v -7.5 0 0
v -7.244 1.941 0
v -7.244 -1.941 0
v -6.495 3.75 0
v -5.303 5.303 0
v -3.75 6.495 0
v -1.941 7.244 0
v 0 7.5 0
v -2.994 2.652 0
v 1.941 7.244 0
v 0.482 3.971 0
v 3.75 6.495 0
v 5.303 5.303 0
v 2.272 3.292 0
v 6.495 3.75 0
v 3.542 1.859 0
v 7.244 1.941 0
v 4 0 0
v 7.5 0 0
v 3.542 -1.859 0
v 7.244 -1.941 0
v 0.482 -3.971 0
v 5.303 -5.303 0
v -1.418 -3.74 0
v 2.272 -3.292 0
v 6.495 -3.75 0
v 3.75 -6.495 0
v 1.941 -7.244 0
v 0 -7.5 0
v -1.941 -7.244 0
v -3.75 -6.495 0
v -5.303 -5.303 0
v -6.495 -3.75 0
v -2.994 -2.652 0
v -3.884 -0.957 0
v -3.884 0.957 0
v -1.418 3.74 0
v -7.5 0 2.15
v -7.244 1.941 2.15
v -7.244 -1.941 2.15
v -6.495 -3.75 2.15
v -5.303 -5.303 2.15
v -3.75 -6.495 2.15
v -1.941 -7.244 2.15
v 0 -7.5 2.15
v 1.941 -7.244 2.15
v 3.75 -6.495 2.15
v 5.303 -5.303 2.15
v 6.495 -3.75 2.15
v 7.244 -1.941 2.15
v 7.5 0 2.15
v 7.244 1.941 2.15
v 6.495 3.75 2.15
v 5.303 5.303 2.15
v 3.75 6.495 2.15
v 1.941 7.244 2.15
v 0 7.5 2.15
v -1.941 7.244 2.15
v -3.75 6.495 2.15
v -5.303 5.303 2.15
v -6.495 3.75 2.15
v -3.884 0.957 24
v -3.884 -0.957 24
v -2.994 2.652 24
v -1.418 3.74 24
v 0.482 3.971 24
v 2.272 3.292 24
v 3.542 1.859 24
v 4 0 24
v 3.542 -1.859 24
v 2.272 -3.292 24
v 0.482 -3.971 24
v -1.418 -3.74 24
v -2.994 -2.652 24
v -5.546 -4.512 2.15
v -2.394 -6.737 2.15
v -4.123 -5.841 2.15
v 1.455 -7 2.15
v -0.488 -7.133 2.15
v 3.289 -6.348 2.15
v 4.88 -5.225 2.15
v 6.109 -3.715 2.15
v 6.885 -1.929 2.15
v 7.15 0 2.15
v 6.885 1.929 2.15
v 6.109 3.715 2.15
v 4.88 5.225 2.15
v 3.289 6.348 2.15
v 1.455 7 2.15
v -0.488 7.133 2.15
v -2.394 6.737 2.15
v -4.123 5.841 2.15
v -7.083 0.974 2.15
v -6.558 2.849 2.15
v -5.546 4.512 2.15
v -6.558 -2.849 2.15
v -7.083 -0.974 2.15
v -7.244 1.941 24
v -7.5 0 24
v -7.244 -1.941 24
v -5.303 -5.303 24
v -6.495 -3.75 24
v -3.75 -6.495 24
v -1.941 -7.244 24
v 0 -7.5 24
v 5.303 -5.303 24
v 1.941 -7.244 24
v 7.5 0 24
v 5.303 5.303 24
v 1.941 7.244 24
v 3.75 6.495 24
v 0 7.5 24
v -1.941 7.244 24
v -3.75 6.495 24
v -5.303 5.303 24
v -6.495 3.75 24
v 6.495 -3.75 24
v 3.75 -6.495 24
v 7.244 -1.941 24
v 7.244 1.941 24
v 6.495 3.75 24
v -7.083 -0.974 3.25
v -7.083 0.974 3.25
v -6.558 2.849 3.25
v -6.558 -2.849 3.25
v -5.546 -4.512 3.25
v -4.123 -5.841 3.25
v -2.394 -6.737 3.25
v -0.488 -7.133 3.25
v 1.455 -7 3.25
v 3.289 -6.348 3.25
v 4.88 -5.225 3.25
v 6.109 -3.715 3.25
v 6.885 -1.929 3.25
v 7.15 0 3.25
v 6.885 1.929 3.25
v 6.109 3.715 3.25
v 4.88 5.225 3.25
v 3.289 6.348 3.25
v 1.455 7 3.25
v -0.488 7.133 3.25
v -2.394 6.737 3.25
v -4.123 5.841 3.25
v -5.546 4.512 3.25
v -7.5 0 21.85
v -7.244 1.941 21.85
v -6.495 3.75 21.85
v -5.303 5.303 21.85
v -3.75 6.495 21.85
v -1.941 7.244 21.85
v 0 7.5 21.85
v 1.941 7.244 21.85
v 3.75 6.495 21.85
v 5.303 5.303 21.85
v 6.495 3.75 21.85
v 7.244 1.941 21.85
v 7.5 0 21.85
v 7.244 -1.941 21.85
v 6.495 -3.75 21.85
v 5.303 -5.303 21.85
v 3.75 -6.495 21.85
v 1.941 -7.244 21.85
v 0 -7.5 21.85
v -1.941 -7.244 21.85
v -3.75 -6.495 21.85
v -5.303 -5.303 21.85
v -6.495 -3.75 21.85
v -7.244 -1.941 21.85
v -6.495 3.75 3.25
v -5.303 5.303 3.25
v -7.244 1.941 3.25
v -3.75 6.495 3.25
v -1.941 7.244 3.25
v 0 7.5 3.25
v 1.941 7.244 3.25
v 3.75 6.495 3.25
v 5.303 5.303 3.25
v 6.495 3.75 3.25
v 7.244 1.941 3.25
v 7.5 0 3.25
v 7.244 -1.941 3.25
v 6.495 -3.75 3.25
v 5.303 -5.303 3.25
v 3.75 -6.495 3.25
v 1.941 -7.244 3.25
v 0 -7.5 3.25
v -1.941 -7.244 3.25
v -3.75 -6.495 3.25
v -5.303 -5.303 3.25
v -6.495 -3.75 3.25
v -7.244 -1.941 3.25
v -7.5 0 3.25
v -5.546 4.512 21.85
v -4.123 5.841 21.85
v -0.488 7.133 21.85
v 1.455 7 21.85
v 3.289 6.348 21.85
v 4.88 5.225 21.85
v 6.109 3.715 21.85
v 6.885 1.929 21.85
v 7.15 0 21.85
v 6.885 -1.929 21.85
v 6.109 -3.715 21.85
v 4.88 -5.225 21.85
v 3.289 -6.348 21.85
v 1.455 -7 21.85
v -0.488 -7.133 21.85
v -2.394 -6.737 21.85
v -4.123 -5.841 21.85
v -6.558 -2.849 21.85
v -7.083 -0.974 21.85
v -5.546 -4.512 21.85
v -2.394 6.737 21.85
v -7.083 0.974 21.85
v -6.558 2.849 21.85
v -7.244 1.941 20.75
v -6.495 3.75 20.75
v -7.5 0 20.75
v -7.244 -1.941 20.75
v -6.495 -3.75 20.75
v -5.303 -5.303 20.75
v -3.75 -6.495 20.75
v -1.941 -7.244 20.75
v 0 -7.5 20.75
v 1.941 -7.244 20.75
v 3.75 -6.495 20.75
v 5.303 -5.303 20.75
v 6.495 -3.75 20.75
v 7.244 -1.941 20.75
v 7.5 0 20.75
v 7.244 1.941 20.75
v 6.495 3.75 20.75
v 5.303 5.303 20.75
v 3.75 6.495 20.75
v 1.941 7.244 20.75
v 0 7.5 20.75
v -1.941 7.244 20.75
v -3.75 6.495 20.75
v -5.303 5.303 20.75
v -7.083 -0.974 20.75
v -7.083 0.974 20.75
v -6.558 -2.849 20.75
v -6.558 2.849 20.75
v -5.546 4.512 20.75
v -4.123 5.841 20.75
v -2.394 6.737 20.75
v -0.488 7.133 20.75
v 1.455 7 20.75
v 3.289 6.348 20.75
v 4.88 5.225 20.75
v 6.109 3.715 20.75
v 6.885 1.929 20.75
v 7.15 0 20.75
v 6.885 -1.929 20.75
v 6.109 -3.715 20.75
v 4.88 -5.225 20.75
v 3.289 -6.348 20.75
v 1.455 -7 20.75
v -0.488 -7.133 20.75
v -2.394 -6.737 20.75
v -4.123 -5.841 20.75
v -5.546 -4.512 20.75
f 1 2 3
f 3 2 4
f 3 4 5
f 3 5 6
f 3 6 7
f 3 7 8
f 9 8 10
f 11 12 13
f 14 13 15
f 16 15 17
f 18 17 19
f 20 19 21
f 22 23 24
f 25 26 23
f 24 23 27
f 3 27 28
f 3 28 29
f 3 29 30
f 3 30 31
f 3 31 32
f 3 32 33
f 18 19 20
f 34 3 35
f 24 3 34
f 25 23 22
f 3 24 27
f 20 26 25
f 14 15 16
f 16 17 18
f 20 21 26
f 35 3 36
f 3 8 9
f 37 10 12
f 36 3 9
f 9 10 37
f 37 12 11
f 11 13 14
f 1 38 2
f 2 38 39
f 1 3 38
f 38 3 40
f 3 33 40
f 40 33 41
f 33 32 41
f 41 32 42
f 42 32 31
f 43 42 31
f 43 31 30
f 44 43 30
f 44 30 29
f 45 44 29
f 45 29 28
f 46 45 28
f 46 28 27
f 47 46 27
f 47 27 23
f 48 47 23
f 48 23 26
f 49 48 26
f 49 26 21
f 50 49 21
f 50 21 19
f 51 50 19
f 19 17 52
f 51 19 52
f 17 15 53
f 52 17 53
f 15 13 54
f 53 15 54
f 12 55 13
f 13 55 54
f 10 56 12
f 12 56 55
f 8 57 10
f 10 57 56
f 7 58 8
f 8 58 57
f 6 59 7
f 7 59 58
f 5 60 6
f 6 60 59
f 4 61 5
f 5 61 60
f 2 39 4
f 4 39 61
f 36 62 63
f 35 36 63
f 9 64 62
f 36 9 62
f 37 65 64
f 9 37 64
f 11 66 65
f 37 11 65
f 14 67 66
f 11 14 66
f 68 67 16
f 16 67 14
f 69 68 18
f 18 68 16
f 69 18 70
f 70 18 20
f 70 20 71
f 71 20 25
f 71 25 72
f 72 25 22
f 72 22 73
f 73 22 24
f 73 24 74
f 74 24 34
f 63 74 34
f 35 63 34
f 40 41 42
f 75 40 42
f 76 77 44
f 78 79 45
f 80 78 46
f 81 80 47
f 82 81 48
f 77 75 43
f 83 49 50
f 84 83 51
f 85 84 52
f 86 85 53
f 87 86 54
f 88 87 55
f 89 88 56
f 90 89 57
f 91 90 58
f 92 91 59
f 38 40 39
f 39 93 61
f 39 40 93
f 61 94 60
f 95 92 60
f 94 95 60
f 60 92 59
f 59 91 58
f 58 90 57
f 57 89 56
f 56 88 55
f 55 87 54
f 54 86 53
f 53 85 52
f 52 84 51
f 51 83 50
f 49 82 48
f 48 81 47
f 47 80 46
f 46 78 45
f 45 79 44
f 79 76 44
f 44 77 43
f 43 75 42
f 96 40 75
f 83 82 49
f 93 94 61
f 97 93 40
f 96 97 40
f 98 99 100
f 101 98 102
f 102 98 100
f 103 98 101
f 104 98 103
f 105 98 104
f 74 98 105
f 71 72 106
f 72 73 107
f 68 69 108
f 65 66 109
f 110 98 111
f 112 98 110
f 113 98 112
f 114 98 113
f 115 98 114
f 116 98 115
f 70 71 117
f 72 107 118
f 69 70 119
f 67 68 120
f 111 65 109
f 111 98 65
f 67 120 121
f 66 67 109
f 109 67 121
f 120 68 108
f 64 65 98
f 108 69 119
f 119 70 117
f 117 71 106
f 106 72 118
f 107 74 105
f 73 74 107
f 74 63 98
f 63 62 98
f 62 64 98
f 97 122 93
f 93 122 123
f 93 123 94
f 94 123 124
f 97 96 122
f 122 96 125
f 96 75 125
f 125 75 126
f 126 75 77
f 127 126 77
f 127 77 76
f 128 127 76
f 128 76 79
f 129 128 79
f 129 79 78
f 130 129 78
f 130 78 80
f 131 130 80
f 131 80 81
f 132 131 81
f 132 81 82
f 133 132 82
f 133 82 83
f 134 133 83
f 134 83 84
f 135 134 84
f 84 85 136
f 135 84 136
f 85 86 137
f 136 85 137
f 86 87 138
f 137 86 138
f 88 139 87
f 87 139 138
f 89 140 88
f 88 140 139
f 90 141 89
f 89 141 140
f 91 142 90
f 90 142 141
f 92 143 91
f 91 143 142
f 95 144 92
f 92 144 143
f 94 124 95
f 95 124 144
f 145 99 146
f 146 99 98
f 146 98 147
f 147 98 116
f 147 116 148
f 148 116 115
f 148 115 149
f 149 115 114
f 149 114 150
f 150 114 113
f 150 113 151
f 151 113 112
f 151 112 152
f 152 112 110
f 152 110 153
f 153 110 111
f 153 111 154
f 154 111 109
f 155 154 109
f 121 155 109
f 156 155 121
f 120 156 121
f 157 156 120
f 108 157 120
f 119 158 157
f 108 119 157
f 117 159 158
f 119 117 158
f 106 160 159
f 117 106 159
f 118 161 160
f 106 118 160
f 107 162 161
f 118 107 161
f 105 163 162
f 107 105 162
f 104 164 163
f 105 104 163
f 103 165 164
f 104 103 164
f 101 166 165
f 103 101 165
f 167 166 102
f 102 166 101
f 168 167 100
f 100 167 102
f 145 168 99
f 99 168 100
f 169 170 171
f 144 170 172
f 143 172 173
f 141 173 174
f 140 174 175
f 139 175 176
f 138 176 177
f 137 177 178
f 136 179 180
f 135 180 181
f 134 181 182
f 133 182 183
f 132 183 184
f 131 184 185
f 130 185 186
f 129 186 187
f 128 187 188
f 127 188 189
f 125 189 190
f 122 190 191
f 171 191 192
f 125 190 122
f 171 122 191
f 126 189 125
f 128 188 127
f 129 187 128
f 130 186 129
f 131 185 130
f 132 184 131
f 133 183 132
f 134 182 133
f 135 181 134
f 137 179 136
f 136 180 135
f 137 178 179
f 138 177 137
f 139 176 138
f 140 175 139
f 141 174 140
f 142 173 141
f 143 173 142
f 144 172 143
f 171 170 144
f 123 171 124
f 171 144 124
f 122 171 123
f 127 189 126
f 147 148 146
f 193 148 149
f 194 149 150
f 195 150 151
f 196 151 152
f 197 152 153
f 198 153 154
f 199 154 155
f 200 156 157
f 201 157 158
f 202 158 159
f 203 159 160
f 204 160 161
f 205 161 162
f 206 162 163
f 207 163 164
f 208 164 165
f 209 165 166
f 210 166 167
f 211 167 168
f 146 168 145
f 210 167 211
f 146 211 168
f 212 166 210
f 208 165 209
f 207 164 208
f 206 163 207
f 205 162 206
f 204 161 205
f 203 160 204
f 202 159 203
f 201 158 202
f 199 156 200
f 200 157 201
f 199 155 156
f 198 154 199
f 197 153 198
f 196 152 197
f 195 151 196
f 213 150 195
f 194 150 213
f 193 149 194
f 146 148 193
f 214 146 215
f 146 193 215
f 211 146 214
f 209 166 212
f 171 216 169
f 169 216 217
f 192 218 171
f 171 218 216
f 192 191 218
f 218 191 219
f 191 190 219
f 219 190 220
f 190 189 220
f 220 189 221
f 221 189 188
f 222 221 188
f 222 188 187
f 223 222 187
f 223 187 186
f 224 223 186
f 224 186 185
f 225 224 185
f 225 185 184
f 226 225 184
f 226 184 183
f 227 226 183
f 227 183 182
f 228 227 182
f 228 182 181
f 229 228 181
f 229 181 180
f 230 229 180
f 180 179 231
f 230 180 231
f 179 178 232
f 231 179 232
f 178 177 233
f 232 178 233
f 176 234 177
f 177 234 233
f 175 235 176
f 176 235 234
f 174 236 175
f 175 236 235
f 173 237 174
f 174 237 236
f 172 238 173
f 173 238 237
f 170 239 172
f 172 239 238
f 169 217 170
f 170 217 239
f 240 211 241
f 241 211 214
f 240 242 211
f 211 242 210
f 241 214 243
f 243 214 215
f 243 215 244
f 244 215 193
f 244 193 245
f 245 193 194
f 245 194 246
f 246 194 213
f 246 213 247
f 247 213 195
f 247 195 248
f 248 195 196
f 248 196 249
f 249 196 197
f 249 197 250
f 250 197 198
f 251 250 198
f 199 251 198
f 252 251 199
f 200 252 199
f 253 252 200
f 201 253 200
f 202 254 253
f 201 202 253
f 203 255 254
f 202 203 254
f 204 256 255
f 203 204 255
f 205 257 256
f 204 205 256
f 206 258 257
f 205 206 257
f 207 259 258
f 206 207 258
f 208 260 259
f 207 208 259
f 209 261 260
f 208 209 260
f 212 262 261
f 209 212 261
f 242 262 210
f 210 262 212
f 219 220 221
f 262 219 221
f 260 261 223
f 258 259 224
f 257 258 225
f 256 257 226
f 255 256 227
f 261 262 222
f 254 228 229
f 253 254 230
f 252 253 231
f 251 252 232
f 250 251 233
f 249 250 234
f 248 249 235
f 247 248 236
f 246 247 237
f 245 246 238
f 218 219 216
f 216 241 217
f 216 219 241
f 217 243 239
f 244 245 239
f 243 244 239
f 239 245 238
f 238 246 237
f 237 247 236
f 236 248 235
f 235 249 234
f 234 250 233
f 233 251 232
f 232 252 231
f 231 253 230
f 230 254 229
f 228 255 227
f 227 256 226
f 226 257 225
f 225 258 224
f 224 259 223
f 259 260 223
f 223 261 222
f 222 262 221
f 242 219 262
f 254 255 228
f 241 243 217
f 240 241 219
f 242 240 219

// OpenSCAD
steel = [0.8, 0.8, 0.9];

module lm8uu() {
    module groove() {
        difference() {
            cylinder(h=1.1, r=7.5);
            cylinder(h=1.2, r=7.5-(0.7/2));
        }
    }
    color(steel) render() difference() {
        cylinder(h=24, r=7.5);
        cylinder(h=25, r=4);
        translate([0, 0, 3.25-1.1]) groove();
        translate([0, 0, 24-3.25]) groove();
    }
}

lm8uu();
